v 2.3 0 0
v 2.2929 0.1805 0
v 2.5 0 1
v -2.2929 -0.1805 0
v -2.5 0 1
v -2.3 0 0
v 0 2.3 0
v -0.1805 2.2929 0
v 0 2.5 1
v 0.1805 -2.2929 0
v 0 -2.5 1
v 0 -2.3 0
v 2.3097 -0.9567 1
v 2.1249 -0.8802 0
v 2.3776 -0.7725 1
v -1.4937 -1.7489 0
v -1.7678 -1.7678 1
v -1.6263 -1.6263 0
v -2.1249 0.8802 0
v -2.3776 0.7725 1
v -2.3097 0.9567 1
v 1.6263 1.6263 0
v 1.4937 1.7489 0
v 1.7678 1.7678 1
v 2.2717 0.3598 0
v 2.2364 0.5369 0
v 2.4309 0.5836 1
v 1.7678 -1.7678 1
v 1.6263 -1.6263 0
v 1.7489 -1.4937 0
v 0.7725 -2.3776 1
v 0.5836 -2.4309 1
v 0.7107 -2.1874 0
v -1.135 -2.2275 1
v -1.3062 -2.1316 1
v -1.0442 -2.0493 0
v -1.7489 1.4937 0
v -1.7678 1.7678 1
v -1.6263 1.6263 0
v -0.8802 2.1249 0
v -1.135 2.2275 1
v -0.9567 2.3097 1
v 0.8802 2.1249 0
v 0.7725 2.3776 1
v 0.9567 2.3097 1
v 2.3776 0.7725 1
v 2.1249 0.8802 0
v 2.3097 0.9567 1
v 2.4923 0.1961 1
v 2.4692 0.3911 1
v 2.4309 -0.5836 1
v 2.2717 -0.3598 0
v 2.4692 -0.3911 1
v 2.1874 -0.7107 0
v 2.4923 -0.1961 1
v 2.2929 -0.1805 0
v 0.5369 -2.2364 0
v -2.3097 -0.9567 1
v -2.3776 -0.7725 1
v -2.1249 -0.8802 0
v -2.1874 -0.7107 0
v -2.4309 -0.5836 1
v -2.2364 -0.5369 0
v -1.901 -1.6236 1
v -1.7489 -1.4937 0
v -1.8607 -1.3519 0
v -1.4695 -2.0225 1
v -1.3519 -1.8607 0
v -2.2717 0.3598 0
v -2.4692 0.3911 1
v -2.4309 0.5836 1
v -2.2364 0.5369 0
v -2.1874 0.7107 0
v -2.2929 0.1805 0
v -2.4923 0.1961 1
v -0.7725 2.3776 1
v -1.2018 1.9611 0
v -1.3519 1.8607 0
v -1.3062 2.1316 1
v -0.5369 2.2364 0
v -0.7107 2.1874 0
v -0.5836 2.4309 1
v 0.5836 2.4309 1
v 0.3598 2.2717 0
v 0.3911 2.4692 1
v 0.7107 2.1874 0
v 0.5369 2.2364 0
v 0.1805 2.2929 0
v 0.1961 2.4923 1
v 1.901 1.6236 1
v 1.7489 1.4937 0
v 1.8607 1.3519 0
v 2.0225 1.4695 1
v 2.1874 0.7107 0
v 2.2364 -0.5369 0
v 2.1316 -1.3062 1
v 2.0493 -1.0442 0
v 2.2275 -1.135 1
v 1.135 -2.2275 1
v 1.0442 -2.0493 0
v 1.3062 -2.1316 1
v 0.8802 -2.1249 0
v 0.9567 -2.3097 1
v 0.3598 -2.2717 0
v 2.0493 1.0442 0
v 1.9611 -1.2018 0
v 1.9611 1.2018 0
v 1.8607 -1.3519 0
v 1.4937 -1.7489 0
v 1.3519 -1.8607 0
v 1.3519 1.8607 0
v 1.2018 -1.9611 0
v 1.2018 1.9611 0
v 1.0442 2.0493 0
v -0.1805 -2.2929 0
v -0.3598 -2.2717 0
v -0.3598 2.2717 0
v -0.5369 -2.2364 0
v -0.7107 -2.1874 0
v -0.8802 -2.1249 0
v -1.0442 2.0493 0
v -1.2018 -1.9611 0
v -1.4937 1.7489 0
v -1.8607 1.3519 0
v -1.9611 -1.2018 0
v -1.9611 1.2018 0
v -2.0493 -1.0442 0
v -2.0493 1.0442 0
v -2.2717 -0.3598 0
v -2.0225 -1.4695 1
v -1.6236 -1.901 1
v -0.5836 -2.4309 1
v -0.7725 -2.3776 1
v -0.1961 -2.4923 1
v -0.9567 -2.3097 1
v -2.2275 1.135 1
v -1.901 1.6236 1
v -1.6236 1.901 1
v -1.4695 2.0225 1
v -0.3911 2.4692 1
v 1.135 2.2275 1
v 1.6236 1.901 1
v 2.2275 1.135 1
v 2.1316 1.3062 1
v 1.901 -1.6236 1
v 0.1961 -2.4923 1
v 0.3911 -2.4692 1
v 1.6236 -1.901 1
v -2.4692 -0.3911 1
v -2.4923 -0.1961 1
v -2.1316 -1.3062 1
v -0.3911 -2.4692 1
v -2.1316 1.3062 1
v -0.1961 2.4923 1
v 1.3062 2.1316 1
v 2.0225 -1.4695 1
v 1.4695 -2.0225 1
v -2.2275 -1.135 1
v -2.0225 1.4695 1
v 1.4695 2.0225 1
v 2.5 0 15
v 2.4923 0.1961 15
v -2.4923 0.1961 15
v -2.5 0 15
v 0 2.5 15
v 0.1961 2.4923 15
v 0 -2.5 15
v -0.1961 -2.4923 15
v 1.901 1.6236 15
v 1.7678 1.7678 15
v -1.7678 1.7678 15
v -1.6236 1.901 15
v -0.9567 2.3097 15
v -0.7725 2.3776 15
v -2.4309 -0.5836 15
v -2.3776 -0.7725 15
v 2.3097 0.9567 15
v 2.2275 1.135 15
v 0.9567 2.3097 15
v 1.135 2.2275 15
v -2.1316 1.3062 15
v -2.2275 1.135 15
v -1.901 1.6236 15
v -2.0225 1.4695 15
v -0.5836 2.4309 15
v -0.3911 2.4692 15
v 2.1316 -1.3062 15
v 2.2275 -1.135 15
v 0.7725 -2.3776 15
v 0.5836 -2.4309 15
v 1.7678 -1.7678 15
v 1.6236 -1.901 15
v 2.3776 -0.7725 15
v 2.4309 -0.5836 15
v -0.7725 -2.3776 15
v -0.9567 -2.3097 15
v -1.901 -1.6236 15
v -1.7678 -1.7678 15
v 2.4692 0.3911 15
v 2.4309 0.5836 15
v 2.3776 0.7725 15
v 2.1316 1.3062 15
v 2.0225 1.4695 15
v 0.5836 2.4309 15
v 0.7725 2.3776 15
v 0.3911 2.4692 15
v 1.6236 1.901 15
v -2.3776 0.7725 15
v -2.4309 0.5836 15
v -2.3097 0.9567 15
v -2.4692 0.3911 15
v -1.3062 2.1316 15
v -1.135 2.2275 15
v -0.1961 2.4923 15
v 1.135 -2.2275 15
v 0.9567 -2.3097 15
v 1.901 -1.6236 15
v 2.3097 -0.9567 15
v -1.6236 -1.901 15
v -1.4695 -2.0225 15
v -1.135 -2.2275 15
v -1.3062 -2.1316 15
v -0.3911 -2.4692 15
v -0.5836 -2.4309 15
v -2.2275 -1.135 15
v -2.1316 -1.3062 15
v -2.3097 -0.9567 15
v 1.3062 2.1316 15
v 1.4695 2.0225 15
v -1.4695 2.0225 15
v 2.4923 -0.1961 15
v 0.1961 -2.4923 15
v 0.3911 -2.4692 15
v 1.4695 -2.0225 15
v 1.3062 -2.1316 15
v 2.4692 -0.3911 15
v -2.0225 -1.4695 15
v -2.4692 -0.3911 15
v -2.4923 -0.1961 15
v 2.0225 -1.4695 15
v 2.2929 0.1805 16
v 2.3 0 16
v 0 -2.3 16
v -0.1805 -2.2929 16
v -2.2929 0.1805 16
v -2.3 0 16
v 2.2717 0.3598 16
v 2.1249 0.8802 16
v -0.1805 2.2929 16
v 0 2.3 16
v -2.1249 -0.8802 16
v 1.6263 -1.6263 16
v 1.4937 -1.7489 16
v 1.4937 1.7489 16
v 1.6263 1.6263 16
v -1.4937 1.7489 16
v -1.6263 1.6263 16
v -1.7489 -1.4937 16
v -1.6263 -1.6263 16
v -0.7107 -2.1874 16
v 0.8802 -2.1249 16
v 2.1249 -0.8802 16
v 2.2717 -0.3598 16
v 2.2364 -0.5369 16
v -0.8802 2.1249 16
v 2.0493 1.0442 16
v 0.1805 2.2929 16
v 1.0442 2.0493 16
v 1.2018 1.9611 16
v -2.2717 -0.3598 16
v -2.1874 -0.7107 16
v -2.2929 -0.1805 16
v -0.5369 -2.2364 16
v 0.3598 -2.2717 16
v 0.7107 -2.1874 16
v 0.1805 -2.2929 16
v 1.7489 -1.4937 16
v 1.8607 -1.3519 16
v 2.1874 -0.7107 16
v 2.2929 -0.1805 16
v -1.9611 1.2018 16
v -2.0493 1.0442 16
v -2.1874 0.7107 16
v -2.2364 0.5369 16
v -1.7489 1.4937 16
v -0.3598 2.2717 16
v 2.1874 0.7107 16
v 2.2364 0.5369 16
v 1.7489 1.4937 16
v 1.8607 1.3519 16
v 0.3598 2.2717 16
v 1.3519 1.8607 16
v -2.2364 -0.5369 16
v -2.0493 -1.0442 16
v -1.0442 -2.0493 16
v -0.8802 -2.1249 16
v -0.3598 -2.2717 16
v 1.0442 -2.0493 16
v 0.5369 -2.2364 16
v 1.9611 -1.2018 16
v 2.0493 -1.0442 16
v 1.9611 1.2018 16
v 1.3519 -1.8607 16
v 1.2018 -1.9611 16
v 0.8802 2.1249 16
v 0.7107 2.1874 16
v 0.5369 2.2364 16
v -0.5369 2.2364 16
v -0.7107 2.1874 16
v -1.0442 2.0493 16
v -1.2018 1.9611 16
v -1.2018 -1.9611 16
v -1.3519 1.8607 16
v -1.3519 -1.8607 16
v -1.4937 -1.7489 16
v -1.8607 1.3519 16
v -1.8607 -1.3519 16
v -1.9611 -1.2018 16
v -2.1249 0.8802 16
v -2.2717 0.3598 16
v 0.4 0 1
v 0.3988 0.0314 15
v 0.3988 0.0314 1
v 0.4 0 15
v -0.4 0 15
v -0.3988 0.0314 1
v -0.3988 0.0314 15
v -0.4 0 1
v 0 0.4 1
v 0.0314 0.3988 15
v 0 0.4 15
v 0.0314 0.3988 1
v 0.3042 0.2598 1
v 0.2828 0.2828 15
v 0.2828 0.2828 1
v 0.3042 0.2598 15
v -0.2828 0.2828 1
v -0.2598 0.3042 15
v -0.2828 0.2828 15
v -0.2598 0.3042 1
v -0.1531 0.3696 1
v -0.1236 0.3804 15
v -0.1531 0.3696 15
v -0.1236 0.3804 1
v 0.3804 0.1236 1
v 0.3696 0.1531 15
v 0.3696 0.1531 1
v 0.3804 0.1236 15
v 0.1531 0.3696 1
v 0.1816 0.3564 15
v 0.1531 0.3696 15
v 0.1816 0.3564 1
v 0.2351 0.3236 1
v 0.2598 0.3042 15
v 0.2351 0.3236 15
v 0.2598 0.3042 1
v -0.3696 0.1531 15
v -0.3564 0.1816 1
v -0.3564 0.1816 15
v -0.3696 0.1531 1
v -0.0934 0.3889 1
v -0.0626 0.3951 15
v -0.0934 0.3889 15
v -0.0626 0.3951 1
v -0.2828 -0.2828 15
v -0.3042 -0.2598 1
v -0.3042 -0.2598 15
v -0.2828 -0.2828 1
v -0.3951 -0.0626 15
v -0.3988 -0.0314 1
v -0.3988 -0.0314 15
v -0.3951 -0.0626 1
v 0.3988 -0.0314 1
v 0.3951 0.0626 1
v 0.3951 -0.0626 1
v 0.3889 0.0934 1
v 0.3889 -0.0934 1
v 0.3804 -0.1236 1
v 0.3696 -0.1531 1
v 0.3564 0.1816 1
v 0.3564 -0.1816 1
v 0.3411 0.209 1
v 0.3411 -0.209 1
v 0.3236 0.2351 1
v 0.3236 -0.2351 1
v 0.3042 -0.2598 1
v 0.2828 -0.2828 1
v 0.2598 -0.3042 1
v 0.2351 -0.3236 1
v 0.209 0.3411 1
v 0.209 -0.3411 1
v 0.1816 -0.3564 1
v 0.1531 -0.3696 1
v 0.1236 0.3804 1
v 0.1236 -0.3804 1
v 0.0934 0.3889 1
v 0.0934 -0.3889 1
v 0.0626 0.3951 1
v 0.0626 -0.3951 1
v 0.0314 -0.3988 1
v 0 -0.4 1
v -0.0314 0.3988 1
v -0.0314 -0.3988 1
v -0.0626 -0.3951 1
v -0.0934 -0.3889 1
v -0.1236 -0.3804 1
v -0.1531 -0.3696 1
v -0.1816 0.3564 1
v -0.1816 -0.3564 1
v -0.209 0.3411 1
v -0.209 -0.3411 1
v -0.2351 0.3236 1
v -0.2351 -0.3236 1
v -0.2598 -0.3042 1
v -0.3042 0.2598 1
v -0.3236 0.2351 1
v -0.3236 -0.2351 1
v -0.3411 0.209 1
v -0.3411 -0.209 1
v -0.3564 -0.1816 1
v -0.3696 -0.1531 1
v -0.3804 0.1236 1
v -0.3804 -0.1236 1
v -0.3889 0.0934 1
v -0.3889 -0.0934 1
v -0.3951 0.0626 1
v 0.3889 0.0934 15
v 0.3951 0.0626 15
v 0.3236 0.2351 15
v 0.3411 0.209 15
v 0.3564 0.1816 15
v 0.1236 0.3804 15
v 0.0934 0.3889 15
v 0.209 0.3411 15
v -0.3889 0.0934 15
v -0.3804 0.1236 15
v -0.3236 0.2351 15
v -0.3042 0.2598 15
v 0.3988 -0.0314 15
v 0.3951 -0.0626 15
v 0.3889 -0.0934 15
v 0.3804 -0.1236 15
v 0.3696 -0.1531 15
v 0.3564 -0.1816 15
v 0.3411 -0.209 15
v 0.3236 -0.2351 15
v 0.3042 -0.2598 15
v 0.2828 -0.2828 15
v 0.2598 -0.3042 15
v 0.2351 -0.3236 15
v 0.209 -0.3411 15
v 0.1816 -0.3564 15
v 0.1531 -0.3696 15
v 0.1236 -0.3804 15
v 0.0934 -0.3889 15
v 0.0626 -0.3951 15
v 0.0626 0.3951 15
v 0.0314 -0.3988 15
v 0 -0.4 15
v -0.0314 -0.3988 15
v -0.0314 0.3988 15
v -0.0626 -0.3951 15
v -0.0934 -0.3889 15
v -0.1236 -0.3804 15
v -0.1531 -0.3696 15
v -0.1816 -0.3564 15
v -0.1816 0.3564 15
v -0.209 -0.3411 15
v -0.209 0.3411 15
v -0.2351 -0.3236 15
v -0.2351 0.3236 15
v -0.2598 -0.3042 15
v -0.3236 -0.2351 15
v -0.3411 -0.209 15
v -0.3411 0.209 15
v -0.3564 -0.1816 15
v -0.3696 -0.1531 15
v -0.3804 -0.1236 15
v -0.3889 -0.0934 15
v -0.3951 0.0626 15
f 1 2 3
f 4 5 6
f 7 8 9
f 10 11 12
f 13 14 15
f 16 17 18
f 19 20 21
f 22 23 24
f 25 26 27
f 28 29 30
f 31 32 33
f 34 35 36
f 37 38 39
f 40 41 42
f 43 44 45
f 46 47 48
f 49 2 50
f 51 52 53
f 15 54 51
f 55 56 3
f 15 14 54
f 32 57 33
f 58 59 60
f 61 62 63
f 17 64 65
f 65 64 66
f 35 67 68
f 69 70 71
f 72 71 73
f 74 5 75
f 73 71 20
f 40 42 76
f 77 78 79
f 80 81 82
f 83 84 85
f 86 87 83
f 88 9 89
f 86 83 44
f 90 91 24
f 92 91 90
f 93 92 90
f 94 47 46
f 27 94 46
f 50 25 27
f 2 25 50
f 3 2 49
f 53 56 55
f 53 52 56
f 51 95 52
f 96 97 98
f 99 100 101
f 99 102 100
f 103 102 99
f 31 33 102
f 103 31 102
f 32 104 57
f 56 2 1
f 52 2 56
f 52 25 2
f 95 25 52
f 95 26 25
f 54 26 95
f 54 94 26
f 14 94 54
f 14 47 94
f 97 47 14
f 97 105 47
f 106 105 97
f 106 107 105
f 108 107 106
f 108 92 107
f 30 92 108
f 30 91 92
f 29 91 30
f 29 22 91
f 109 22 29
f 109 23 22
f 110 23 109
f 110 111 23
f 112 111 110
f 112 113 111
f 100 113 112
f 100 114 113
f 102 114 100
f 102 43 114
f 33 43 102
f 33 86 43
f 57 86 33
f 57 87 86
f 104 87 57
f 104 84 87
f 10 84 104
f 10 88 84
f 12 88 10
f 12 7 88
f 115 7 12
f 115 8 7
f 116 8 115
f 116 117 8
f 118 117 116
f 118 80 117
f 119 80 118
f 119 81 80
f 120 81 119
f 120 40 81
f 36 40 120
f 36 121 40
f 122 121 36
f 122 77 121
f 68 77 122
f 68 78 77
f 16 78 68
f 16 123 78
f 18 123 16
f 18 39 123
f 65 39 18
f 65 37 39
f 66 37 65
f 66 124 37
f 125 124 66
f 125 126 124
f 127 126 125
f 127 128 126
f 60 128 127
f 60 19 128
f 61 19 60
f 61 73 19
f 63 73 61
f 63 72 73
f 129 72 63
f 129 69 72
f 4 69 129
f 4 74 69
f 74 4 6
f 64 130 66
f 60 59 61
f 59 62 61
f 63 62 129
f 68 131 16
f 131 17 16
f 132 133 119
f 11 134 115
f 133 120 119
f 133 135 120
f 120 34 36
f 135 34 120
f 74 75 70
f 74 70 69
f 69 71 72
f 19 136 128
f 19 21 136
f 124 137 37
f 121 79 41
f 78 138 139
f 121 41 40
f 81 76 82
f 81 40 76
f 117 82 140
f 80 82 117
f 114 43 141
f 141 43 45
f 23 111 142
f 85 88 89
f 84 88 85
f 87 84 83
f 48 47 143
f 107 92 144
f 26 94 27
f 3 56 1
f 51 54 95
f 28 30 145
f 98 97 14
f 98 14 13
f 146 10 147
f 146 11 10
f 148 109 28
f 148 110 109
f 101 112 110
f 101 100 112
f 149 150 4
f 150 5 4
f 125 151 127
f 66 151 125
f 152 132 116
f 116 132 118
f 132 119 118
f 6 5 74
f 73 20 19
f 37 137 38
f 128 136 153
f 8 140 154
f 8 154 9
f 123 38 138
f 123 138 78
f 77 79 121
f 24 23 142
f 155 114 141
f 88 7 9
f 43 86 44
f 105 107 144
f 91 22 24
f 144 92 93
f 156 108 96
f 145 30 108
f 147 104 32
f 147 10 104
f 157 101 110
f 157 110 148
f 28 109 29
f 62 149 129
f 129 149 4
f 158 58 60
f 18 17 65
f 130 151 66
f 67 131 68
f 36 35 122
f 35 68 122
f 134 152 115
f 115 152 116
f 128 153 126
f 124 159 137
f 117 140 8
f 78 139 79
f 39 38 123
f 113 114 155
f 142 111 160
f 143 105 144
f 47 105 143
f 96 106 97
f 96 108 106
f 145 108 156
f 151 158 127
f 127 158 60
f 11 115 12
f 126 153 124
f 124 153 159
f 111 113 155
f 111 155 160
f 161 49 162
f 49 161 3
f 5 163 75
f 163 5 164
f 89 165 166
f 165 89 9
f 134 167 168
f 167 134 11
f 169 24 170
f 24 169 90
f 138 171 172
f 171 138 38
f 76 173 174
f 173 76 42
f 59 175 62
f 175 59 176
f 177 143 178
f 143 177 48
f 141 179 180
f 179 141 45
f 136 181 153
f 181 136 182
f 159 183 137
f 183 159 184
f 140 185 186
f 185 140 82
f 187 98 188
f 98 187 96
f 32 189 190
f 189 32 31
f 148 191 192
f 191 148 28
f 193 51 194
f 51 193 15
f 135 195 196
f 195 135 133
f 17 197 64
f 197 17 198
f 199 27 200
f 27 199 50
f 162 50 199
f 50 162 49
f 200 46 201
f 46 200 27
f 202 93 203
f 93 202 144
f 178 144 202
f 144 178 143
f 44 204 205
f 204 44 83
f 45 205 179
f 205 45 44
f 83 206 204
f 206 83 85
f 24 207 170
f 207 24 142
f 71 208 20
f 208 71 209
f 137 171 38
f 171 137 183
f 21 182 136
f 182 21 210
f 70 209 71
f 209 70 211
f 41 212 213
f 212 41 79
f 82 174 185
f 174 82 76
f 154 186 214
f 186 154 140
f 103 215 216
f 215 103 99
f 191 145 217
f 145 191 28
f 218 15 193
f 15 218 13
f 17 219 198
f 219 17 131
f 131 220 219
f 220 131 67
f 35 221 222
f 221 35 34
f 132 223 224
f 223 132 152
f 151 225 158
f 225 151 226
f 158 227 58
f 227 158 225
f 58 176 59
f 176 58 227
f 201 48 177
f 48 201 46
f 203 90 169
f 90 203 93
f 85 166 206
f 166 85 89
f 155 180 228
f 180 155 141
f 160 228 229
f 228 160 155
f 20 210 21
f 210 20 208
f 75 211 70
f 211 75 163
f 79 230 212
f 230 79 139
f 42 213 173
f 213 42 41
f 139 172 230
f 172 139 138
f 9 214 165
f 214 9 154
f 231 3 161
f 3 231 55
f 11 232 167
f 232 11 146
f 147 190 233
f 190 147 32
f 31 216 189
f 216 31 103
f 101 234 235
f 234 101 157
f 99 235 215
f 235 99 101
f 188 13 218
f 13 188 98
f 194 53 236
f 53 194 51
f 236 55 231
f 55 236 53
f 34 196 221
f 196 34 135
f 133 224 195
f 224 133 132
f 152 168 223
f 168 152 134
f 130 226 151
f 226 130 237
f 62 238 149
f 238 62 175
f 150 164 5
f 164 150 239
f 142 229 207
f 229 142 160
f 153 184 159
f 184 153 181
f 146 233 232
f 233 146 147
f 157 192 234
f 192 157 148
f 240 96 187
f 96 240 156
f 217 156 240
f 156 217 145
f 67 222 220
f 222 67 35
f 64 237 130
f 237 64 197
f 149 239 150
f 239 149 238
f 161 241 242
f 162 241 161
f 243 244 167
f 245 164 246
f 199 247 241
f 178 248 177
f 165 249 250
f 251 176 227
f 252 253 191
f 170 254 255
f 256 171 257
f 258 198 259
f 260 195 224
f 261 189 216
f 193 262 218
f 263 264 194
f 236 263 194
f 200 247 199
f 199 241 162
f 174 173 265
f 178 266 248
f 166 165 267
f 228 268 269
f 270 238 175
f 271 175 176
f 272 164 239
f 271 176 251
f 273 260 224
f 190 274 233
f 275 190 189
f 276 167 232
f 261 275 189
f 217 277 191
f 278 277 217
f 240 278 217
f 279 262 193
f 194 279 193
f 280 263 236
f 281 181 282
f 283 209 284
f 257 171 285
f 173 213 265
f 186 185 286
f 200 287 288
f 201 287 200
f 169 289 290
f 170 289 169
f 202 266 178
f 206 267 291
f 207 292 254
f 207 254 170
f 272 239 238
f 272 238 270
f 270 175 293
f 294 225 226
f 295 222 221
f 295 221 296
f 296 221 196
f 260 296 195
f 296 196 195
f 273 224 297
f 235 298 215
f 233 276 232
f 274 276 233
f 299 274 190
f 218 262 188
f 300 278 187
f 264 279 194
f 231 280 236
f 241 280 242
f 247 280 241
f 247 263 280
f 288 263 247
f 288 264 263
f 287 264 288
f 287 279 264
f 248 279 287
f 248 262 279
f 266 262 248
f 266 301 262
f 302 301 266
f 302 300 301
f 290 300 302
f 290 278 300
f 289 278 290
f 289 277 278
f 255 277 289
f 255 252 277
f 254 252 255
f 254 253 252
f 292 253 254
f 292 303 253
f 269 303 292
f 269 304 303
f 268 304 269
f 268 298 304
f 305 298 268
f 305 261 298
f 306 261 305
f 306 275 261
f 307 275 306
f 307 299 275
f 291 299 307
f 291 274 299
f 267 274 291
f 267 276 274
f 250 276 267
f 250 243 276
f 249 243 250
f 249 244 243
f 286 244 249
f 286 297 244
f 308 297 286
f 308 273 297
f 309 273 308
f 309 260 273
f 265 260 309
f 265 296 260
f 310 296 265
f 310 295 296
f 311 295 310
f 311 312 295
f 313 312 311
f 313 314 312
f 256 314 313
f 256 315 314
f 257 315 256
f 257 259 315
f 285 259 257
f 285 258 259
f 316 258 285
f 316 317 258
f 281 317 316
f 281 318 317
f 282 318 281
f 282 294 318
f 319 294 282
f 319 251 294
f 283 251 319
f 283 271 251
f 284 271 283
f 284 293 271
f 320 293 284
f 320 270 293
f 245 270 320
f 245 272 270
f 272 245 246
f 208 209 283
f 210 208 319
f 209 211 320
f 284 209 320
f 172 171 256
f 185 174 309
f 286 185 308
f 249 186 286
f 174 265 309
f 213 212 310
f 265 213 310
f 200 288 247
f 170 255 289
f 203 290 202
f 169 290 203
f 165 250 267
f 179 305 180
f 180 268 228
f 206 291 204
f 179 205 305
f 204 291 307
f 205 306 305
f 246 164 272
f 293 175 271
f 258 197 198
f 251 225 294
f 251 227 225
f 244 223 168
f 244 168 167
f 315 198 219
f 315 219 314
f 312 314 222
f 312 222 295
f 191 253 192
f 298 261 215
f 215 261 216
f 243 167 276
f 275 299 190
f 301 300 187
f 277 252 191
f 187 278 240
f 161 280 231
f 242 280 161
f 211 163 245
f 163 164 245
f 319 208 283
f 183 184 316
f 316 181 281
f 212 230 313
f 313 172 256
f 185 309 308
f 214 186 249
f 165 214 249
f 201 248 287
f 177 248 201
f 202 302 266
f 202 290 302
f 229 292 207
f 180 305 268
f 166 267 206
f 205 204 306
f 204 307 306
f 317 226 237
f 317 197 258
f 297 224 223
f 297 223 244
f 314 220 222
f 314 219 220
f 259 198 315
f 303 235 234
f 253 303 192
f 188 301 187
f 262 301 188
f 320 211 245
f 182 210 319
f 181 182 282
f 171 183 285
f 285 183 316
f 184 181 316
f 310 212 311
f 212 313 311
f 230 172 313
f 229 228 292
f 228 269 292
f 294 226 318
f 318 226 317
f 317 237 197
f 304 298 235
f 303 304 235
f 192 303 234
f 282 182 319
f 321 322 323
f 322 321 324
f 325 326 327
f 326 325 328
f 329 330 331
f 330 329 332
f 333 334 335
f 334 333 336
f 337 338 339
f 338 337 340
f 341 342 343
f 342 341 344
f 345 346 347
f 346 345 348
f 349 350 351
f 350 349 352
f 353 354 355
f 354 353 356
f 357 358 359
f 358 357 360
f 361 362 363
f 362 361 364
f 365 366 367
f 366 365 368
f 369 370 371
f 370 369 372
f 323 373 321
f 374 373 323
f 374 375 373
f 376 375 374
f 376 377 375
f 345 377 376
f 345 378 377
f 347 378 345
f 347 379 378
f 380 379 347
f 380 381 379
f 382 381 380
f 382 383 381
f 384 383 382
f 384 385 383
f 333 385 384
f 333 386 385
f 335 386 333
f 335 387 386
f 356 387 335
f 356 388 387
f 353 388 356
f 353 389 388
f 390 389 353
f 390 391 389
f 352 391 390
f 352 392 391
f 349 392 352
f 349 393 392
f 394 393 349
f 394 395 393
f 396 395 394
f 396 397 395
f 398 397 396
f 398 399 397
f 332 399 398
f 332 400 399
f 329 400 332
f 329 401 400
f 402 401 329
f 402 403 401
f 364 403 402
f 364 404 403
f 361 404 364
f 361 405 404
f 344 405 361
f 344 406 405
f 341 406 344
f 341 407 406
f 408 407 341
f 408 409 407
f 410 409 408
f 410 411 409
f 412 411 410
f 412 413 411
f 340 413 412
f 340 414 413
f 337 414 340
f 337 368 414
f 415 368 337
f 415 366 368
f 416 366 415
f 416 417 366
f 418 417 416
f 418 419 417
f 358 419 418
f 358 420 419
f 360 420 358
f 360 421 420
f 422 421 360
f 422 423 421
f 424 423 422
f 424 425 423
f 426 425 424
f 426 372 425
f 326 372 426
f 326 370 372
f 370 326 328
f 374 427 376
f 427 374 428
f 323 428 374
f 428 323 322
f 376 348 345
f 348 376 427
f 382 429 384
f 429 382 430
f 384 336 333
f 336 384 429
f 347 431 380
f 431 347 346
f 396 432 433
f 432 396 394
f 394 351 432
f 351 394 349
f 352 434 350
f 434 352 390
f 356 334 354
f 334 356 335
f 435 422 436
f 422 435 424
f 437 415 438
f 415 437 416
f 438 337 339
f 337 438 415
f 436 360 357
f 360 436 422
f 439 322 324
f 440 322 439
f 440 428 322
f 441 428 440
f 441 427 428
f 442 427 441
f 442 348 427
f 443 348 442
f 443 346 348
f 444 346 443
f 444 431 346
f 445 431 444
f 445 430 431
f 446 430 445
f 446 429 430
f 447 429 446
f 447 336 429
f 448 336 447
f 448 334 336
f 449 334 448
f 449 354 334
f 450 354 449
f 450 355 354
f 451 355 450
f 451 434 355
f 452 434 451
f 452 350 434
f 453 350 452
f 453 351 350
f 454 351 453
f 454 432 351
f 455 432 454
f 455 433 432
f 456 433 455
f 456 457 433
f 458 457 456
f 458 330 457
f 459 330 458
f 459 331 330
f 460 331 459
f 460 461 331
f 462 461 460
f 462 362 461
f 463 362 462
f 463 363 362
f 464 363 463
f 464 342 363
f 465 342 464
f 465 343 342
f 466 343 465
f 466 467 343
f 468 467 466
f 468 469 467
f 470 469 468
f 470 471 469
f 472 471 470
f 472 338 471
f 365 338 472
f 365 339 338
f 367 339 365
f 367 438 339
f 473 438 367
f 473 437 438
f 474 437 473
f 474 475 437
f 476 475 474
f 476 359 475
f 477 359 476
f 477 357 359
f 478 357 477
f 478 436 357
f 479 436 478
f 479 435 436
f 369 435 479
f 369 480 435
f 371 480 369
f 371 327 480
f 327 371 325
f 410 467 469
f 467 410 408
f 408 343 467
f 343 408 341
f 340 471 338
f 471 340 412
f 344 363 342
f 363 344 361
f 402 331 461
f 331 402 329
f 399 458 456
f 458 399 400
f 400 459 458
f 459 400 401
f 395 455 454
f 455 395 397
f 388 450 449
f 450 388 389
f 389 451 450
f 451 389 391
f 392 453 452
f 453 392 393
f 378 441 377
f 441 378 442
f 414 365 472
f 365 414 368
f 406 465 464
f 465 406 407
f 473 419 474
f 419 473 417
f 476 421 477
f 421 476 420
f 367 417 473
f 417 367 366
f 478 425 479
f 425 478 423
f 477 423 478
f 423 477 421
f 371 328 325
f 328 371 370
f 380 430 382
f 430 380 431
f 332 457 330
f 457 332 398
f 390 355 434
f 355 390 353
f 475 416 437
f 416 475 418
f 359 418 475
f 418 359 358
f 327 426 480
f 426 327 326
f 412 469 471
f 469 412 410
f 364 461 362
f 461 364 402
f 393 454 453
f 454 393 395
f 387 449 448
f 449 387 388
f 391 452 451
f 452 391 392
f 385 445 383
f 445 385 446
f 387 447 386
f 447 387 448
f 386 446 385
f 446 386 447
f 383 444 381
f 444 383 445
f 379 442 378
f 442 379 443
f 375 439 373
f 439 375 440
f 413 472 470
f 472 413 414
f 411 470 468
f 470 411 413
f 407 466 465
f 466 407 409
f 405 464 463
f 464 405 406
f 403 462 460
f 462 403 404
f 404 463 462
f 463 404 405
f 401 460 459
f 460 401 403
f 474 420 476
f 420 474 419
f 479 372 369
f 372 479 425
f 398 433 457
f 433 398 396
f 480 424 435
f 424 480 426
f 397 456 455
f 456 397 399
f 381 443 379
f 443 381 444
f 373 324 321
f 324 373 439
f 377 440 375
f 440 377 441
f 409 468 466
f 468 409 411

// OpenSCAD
// PRUSA iteration3
// Idler shaft
// GNU GPL v3
// Josef Průša <iam@josefprusa.cz> and contributors
// http://www.reprap.org/wiki/Prusa_Mendel
// http://prusamendel.org


difference()
{
    union()
    {
        cylinder( h=1, r2=2.5, r1=2.3, $fn=80 );    
        translate([0,0,1]) cylinder( h=14, r=2.5, $fn=80 );    
        translate([0,0,15])  cylinder( h=1, r1=2.5, r2=2.3, $fn=80 );    
    }
        translate([0,0,1]) cylinder( h=14, r=0.4, $fn=80 );    
}
